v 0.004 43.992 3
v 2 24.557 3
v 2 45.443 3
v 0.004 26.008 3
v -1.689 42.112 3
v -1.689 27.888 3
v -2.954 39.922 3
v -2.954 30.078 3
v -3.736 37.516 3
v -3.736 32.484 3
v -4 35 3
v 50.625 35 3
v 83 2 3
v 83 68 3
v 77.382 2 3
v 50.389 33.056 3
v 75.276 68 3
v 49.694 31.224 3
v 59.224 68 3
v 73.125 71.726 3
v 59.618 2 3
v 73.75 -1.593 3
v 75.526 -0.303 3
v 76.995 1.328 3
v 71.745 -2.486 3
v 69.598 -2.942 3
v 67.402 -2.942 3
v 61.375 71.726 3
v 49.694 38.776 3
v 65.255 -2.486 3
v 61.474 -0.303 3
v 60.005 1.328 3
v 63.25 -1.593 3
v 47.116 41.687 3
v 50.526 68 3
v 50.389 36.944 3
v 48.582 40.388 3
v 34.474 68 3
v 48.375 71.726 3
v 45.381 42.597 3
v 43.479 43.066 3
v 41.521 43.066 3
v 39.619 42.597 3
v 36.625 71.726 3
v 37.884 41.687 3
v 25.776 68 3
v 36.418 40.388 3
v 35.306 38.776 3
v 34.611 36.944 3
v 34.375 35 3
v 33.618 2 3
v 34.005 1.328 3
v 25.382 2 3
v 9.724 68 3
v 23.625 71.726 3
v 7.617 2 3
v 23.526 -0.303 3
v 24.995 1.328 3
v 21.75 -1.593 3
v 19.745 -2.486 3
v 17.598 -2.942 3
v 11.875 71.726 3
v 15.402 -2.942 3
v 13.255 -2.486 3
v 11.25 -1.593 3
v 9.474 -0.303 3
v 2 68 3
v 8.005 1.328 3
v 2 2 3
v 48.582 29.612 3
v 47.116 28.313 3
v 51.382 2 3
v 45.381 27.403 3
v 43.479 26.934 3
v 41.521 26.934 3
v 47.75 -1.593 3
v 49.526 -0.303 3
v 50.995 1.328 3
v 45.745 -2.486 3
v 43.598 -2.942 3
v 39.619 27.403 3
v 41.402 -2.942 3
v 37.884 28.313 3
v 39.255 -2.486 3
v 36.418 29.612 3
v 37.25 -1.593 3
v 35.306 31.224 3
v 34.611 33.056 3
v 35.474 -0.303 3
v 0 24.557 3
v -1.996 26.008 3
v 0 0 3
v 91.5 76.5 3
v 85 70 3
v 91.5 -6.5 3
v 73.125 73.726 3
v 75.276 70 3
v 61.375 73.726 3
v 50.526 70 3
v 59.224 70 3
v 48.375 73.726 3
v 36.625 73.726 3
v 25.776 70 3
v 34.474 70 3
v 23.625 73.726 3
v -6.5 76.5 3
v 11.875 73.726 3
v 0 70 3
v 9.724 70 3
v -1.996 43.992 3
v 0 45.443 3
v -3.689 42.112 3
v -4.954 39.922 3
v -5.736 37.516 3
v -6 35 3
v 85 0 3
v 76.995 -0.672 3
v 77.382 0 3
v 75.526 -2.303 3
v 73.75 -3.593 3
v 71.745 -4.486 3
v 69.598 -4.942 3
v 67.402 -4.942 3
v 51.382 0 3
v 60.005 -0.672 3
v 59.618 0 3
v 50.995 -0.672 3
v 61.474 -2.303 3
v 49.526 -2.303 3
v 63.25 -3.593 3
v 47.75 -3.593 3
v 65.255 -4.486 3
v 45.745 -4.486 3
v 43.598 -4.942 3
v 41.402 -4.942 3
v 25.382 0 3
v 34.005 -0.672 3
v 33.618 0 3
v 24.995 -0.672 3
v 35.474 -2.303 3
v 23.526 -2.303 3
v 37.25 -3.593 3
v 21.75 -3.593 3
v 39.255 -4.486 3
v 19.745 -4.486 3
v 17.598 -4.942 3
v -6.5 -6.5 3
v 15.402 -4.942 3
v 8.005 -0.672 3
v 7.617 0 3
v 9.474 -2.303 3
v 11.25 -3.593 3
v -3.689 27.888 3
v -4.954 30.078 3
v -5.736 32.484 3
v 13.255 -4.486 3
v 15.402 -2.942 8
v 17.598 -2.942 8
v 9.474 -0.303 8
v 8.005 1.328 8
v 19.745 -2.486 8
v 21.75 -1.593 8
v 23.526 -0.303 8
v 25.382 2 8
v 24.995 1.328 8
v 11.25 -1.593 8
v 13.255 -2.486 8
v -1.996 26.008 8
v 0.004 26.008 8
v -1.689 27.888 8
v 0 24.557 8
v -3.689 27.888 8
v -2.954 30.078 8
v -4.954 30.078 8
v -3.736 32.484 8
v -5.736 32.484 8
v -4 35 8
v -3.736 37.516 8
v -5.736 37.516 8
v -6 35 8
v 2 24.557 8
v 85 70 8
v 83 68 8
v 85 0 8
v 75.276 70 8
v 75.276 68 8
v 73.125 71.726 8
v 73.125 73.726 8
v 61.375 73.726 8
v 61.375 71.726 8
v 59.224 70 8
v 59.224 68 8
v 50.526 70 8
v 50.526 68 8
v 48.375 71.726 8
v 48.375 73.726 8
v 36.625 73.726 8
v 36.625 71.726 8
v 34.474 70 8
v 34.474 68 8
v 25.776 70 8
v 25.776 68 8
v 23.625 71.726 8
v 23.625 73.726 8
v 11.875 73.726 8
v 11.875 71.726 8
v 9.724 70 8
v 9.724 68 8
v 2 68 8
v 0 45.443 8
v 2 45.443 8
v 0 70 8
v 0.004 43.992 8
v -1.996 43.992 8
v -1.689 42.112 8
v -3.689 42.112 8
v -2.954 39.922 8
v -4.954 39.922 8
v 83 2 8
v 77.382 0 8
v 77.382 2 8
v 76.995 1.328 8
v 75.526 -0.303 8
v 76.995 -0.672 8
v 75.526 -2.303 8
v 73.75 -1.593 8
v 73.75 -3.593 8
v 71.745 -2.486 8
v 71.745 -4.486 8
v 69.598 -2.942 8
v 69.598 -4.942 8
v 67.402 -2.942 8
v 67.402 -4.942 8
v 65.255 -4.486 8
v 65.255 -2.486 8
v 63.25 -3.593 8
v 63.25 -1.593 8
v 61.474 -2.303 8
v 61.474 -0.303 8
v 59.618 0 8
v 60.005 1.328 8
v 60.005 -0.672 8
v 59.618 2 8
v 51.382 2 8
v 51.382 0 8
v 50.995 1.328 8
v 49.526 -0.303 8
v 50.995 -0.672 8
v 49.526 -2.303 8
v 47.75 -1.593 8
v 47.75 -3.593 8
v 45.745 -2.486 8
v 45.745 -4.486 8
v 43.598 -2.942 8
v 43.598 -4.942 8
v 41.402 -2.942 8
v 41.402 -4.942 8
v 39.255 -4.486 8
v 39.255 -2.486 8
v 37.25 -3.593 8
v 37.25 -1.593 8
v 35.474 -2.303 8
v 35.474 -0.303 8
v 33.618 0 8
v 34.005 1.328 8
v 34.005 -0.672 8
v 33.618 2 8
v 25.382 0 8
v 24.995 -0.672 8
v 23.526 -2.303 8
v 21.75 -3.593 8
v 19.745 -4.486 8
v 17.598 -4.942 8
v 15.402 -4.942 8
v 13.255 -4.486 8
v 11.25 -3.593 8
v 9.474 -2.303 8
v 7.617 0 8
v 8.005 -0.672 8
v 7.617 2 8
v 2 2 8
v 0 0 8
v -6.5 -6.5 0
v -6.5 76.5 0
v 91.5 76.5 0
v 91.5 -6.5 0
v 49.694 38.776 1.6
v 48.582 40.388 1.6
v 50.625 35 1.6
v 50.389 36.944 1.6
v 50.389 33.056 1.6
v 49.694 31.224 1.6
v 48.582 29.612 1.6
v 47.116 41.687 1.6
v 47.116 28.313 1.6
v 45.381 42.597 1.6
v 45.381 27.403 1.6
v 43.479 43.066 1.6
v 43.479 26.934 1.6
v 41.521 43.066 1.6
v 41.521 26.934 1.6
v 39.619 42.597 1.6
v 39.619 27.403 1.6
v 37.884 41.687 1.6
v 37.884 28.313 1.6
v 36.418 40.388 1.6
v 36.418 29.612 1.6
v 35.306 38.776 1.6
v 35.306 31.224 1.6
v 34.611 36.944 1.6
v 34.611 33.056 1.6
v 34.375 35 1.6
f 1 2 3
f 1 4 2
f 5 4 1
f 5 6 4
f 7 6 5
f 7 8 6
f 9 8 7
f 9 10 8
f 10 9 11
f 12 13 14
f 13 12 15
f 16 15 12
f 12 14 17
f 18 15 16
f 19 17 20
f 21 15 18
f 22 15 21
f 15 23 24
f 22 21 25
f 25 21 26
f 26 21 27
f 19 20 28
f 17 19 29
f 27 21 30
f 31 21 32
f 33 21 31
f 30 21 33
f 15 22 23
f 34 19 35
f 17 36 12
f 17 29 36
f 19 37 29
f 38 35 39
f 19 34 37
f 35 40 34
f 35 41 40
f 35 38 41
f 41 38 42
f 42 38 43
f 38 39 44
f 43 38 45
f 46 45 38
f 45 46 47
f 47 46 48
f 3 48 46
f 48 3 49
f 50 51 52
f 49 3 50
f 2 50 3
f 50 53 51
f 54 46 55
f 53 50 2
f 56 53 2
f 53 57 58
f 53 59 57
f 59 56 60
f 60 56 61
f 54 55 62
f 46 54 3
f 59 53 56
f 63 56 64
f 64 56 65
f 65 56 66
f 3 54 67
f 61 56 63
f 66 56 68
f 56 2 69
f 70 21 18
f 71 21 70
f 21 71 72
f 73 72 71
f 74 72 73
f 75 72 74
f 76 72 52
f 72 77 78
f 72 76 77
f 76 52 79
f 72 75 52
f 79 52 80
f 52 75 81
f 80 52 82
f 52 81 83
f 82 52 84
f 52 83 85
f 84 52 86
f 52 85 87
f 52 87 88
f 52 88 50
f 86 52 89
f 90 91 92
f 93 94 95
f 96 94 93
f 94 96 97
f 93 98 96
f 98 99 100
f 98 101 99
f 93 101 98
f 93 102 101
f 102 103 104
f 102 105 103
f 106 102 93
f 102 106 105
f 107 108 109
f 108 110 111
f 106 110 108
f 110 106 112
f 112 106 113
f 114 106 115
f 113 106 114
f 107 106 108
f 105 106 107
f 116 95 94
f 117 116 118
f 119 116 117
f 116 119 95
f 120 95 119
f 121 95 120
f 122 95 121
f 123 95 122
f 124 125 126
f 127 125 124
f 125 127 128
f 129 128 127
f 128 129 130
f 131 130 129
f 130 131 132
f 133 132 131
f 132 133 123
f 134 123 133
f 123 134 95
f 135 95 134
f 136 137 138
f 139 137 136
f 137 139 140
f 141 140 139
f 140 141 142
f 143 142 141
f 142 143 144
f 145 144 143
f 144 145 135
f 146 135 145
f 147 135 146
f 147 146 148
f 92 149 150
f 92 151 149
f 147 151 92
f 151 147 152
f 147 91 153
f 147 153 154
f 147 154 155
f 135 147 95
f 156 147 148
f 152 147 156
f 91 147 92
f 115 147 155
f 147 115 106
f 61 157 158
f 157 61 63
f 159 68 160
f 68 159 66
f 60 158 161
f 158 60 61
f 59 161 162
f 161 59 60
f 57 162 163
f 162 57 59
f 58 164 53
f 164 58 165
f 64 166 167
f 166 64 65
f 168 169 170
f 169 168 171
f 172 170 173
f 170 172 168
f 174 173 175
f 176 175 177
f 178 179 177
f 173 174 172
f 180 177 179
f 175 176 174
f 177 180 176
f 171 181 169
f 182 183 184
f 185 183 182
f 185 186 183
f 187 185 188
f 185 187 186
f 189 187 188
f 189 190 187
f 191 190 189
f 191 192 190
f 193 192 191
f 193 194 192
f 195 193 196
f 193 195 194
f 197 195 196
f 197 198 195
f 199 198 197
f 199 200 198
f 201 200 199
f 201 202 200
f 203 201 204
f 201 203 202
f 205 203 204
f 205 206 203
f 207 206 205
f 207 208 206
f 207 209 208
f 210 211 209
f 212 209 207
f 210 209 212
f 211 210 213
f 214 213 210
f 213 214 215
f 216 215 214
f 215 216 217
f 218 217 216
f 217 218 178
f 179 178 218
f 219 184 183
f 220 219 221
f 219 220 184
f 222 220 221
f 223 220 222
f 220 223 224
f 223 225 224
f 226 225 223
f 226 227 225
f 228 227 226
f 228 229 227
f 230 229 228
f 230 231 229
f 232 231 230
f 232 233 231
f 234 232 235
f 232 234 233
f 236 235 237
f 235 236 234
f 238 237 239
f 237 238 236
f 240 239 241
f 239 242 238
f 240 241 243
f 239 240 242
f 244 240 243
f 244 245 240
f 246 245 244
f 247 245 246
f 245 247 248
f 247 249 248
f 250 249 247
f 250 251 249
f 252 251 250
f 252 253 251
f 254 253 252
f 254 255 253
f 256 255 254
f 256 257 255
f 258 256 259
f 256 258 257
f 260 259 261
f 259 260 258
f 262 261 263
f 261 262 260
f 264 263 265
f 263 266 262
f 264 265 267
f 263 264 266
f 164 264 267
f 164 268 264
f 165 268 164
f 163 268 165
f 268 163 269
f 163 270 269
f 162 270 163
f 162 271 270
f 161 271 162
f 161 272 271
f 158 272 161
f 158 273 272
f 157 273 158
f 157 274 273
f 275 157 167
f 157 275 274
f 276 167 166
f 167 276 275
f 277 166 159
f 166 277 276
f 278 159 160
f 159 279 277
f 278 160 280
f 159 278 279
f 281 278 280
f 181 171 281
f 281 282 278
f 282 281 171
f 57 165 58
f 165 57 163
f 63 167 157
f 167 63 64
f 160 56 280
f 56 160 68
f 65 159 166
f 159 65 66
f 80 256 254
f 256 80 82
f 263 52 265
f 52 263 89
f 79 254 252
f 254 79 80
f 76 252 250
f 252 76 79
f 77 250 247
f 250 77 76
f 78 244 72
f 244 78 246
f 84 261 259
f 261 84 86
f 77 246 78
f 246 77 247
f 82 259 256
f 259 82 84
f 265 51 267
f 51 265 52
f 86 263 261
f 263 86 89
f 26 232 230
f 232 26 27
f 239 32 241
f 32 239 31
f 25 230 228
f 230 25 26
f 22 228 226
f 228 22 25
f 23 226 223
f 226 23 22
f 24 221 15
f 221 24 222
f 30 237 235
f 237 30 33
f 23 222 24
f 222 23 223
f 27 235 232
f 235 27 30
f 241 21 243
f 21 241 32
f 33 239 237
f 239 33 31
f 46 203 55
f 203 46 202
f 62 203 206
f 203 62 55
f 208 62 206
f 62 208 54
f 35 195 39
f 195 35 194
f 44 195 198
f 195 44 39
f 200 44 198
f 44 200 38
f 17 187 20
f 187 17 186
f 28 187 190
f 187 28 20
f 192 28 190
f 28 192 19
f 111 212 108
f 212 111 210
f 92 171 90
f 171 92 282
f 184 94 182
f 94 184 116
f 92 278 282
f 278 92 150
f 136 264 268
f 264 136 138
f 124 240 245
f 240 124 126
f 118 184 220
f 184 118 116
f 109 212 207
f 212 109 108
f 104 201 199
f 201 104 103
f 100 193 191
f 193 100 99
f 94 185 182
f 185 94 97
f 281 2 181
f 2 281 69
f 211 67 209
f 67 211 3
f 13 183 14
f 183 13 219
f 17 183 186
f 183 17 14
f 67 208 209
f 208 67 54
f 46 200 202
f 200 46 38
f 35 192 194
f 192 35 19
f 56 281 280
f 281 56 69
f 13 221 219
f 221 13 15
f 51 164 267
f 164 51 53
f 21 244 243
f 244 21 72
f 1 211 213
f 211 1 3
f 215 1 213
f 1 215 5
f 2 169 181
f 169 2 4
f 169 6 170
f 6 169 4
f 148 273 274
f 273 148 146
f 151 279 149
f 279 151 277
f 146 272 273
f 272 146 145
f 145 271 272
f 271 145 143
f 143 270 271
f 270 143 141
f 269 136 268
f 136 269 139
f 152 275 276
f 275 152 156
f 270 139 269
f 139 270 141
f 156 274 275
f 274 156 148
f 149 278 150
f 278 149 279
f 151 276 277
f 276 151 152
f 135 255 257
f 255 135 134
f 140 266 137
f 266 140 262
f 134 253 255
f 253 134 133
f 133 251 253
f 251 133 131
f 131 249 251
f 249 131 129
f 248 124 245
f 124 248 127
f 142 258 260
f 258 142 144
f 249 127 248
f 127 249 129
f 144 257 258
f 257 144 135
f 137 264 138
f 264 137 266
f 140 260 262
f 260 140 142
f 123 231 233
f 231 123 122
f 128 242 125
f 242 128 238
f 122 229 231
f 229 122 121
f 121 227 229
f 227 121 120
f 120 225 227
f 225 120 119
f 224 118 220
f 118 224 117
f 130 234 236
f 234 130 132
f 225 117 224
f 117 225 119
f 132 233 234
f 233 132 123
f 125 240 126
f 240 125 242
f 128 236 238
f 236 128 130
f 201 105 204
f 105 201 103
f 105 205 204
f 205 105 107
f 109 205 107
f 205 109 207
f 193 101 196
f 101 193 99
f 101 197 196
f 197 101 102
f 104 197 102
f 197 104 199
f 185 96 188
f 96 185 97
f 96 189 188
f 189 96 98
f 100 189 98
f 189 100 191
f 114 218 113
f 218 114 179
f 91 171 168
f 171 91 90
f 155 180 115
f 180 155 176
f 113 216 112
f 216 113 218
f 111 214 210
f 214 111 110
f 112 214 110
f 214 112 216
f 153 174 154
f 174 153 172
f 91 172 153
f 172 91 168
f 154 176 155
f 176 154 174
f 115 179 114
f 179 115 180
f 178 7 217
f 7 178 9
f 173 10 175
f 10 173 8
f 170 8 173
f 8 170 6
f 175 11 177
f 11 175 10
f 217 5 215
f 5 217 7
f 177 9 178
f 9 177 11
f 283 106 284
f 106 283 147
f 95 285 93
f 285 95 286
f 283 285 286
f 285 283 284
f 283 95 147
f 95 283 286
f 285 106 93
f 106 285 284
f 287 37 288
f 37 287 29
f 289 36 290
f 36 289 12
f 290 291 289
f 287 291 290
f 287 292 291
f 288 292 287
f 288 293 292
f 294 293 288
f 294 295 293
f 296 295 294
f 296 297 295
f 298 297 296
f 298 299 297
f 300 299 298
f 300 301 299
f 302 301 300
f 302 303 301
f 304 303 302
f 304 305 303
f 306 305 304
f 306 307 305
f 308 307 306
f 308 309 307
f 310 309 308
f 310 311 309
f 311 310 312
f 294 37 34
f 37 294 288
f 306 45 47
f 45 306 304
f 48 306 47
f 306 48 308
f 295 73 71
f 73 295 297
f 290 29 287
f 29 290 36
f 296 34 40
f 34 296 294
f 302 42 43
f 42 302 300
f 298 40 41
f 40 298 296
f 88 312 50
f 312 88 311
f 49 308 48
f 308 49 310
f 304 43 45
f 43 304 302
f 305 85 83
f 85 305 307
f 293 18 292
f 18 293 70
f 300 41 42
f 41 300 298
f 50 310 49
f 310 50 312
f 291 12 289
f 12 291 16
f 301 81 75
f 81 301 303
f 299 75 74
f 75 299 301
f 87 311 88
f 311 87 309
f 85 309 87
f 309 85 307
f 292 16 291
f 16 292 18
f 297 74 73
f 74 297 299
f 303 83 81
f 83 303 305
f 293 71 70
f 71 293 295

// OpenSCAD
length = 80;
width = 65;
height = 3;
rimHeight = 5;
rimThickness = 2;
notchLength = 25;
//Based on washer size:
washerDiameter = 16.25;
washerHeight = 1.4;
rimPadding = 1;
totalHeight = height + rimHeight;

totalLength = length + rimThickness * 2 + rimPadding;
totalWidth = width + rimThickness * 2 + rimPadding;
extraLidForCircles = 6.5;

coinDiameter = 21;
coinOffset = 3;


conflictTokenDiameter = 23.5;
conflictTokenOffset = 4;


reagentTokenDiameter = 24.2;
reagentTokenOffset = 4;


alchemicalTokenDiameter = 18.5;
alchemicalTokenOffset = 2;


union()
{
    difference() {
        translate([-extraLidForCircles, -extraLidForCircles, 0])
            cube([totalLength + 2 * extraLidForCircles, totalWidth + 2 * extraLidForCircles, height]);
        translate([totalLength/2, totalWidth/2, height - washerHeight])
            cylinder(washerHeight, d=washerDiameter);
    }
    
    difference() {
        translate([0, 0, height])
            cube([totalLength, totalWidth, rimHeight]);
        translate([rimThickness, rimThickness, height])
            cube([length + rimPadding, width + rimPadding, rimHeight]);
        LengthCircles();
        translate([0, totalWidth - 2 * (reagentTokenDiameter/2 - reagentTokenOffset), 0])
            LengthHexagons();
        WidthCircles();
    }
    
    difference(){
        union()
        {
            translate([0, -rimThickness, 0])
                LengthCircles();
            translate([0, totalWidth - 2 * (reagentTokenDiameter/2 - reagentTokenOffset) + rimThickness, 0])
                LengthHexagons();
            translate([-rimThickness, 0, 0])
                WidthCircles();
        }
        translate([0, 0, height])
            cube([totalLength, totalWidth, rimHeight]);
        LengthCircles();
        translate([0, totalWidth - 2 * (reagentTokenDiameter/2 - reagentTokenOffset), 0])
            LengthHexagons();
        WidthCircles();
    }
}


module LengthCircles()
{

spaceBetweenCircles = 3;
    translate([
        coinDiameter/2 + spaceBetweenCircles + rimThickness + rimPadding,
        coinDiameter/2 - coinOffset,
        height])
            cylinder(rimHeight, d=coinDiameter);

    translate([
        totalLength /2,
        coinDiameter/2 - coinOffset,
        height])
        cylinder(rimHeight, d=coinDiameter);
    
    translate([
        totalLength - (coinDiameter/2 + spaceBetweenCircles + rimThickness + rimPadding), 
        coinDiameter/2 - coinOffset,
        height])
        cylinder(rimHeight, d=coinDiameter);
}

module LengthHexagons()
{

spaceBetweenCircles = 3;
    translate([
        conflictTokenDiameter/2 + spaceBetweenCircles + rimThickness + rimPadding,
        conflictTokenDiameter/2 - conflictTokenOffset,
        height])
            cylinder(rimHeight, d=conflictTokenDiameter, $fn=6);

    translate([
        totalLength /2,
        conflictTokenDiameter/2 - conflictTokenOffset,
        height])
        cylinder(rimHeight, d=conflictTokenDiameter, $fn=6);
    
    translate([
        totalLength - (conflictTokenDiameter/2 + spaceBetweenCircles + rimThickness + rimPadding), 
        conflictTokenDiameter/2 - conflictTokenOffset,
        height])
        cylinder(rimHeight, d=conflictTokenDiameter, $fn=6);
}


module WidthCircles()
{
    spaceBetweenCircles = 3;
    
    translate([reagentTokenDiameter/2 - reagentTokenOffset, totalWidth/2, height])
        cylinder(rimHeight, d=reagentTokenDiameter);
}
